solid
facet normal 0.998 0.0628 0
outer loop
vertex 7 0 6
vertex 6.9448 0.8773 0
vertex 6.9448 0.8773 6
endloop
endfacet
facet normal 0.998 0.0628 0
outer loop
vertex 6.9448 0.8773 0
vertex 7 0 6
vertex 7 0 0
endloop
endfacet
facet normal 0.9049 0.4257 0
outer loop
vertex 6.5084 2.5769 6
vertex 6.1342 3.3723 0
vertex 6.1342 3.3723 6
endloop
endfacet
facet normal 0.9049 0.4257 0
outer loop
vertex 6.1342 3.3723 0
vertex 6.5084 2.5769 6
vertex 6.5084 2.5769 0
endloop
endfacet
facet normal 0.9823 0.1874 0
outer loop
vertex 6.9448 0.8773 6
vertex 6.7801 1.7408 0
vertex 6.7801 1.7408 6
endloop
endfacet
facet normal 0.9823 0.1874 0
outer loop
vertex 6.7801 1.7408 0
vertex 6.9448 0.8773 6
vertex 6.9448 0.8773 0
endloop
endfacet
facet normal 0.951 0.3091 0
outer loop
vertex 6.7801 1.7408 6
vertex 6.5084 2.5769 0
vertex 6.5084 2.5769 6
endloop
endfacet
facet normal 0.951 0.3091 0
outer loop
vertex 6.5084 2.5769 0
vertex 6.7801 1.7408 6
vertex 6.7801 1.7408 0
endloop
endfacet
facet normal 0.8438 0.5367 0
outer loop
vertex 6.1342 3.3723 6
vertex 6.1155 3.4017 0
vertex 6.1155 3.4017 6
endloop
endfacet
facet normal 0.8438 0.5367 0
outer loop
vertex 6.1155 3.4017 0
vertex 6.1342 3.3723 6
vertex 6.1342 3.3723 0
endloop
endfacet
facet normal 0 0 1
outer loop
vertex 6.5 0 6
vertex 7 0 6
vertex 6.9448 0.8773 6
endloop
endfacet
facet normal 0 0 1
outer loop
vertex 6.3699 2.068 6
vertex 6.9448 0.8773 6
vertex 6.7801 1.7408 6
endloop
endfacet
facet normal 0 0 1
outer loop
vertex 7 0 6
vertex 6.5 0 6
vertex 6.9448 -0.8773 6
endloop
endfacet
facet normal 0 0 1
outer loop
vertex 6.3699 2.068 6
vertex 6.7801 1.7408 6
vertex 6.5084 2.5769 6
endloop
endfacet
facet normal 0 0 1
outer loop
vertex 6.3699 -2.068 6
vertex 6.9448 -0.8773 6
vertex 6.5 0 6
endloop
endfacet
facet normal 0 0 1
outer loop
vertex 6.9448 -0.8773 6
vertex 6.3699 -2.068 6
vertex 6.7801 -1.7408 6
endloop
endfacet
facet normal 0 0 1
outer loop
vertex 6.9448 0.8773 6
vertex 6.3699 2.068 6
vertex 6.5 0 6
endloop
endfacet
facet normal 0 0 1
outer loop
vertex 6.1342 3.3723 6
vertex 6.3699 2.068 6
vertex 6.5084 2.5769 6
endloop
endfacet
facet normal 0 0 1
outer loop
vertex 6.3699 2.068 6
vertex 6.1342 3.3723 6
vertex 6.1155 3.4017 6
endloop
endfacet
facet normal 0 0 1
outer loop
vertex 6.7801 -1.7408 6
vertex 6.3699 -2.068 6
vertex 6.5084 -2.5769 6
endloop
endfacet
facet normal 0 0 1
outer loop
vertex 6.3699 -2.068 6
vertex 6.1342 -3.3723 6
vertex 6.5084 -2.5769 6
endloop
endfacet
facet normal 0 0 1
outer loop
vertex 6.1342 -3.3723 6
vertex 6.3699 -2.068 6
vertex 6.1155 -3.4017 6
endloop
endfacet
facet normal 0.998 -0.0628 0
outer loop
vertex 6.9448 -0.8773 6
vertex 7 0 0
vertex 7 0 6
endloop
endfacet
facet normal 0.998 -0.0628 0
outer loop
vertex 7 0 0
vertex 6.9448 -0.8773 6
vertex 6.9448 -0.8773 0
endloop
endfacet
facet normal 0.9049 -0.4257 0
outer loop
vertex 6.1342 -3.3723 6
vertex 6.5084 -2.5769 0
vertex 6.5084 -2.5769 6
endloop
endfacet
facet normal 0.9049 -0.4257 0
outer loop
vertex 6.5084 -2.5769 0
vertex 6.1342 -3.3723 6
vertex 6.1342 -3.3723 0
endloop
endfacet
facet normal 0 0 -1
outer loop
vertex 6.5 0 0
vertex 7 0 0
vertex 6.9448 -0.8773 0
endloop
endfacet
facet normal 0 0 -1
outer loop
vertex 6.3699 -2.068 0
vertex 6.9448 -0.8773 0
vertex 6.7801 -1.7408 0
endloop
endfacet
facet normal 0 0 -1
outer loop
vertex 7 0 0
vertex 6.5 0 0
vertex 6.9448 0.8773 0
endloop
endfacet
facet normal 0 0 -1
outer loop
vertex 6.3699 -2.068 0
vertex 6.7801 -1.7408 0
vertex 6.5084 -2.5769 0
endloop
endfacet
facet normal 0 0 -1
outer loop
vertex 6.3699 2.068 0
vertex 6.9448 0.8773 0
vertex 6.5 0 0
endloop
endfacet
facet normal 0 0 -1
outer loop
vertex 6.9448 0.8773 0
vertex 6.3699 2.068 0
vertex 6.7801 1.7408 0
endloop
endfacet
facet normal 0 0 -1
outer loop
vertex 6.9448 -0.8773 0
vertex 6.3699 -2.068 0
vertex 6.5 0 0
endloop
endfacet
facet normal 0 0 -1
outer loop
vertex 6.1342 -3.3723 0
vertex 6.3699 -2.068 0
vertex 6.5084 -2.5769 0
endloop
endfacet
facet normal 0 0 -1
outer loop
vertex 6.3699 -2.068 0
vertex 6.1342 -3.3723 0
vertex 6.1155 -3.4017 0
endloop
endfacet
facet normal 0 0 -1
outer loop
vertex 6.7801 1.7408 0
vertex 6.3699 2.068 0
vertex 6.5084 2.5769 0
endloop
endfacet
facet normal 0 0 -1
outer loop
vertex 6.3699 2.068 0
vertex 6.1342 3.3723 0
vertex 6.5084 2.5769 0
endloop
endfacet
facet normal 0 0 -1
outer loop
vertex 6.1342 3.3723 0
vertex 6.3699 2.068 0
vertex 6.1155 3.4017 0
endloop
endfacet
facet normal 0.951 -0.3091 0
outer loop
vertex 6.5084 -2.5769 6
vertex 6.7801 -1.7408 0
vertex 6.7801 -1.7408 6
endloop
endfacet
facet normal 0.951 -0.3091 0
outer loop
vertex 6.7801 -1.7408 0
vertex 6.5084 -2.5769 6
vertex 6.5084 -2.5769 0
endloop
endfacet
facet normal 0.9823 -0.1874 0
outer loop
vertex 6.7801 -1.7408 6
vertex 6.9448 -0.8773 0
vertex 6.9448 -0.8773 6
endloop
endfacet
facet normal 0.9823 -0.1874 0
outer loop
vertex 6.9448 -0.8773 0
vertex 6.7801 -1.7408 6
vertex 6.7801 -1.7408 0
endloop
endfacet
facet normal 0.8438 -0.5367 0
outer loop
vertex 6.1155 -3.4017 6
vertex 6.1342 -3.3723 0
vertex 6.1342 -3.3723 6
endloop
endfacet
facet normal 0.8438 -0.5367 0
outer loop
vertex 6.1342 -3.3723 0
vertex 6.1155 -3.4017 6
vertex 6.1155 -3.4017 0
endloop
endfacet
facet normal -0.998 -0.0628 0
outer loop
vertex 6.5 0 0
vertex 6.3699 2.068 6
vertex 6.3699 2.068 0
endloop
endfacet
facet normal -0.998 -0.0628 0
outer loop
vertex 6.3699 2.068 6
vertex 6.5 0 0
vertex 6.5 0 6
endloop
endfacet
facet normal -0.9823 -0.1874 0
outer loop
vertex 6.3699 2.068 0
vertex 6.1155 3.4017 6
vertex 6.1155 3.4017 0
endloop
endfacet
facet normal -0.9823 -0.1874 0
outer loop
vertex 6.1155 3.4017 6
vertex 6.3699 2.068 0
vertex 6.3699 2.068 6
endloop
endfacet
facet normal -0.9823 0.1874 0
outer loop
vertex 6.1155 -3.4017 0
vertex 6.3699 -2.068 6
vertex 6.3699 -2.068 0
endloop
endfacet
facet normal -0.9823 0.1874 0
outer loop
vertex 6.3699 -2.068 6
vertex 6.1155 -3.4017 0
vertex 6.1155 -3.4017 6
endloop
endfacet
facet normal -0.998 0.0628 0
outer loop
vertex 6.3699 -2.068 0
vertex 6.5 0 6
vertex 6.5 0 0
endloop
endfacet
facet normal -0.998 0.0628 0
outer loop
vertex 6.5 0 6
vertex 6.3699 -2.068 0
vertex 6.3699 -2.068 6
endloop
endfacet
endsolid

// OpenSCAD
$fn = 50;


difference() {
	union() {
		cylinder(h = 6, r = 7.0000000000);
		translate(v = [-13.0000000000, 0, 0]) {
			cylinder(h = 6, r = 7.0000000000);
		}
	}
	union() {
		cylinder(h = 6, r = 3.2500000000);
		cylinder(h = 6, r = 1.8000000000);
		cylinder(h = 6, r = 1.8000000000);
		cylinder(h = 6, r = 1.8000000000);
		translate(v = [-17.5000000000, 0, 0]) {
			hull() {
				translate(v = [-3.7500000000, 0.0000000000, 0]) {
					cylinder(h = 6, r = 10.5000000000);
				}
				translate(v = [3.7500000000, 0.0000000000, 0]) {
					cylinder(h = 6, r = 10.5000000000);
				}
				translate(v = [-3.7500000000, -0.0000000000, 0]) {
					cylinder(h = 6, r = 10.5000000000);
				}
				translate(v = [3.7500000000, -0.0000000000, 0]) {
					cylinder(h = 6, r = 10.5000000000);
				}
			}
		}
		translate(v = [-10.0000000000, 0, 0.0000000000]) {
			cylinder(h = 6, r = 16.5000000000);
		}
	}
}
